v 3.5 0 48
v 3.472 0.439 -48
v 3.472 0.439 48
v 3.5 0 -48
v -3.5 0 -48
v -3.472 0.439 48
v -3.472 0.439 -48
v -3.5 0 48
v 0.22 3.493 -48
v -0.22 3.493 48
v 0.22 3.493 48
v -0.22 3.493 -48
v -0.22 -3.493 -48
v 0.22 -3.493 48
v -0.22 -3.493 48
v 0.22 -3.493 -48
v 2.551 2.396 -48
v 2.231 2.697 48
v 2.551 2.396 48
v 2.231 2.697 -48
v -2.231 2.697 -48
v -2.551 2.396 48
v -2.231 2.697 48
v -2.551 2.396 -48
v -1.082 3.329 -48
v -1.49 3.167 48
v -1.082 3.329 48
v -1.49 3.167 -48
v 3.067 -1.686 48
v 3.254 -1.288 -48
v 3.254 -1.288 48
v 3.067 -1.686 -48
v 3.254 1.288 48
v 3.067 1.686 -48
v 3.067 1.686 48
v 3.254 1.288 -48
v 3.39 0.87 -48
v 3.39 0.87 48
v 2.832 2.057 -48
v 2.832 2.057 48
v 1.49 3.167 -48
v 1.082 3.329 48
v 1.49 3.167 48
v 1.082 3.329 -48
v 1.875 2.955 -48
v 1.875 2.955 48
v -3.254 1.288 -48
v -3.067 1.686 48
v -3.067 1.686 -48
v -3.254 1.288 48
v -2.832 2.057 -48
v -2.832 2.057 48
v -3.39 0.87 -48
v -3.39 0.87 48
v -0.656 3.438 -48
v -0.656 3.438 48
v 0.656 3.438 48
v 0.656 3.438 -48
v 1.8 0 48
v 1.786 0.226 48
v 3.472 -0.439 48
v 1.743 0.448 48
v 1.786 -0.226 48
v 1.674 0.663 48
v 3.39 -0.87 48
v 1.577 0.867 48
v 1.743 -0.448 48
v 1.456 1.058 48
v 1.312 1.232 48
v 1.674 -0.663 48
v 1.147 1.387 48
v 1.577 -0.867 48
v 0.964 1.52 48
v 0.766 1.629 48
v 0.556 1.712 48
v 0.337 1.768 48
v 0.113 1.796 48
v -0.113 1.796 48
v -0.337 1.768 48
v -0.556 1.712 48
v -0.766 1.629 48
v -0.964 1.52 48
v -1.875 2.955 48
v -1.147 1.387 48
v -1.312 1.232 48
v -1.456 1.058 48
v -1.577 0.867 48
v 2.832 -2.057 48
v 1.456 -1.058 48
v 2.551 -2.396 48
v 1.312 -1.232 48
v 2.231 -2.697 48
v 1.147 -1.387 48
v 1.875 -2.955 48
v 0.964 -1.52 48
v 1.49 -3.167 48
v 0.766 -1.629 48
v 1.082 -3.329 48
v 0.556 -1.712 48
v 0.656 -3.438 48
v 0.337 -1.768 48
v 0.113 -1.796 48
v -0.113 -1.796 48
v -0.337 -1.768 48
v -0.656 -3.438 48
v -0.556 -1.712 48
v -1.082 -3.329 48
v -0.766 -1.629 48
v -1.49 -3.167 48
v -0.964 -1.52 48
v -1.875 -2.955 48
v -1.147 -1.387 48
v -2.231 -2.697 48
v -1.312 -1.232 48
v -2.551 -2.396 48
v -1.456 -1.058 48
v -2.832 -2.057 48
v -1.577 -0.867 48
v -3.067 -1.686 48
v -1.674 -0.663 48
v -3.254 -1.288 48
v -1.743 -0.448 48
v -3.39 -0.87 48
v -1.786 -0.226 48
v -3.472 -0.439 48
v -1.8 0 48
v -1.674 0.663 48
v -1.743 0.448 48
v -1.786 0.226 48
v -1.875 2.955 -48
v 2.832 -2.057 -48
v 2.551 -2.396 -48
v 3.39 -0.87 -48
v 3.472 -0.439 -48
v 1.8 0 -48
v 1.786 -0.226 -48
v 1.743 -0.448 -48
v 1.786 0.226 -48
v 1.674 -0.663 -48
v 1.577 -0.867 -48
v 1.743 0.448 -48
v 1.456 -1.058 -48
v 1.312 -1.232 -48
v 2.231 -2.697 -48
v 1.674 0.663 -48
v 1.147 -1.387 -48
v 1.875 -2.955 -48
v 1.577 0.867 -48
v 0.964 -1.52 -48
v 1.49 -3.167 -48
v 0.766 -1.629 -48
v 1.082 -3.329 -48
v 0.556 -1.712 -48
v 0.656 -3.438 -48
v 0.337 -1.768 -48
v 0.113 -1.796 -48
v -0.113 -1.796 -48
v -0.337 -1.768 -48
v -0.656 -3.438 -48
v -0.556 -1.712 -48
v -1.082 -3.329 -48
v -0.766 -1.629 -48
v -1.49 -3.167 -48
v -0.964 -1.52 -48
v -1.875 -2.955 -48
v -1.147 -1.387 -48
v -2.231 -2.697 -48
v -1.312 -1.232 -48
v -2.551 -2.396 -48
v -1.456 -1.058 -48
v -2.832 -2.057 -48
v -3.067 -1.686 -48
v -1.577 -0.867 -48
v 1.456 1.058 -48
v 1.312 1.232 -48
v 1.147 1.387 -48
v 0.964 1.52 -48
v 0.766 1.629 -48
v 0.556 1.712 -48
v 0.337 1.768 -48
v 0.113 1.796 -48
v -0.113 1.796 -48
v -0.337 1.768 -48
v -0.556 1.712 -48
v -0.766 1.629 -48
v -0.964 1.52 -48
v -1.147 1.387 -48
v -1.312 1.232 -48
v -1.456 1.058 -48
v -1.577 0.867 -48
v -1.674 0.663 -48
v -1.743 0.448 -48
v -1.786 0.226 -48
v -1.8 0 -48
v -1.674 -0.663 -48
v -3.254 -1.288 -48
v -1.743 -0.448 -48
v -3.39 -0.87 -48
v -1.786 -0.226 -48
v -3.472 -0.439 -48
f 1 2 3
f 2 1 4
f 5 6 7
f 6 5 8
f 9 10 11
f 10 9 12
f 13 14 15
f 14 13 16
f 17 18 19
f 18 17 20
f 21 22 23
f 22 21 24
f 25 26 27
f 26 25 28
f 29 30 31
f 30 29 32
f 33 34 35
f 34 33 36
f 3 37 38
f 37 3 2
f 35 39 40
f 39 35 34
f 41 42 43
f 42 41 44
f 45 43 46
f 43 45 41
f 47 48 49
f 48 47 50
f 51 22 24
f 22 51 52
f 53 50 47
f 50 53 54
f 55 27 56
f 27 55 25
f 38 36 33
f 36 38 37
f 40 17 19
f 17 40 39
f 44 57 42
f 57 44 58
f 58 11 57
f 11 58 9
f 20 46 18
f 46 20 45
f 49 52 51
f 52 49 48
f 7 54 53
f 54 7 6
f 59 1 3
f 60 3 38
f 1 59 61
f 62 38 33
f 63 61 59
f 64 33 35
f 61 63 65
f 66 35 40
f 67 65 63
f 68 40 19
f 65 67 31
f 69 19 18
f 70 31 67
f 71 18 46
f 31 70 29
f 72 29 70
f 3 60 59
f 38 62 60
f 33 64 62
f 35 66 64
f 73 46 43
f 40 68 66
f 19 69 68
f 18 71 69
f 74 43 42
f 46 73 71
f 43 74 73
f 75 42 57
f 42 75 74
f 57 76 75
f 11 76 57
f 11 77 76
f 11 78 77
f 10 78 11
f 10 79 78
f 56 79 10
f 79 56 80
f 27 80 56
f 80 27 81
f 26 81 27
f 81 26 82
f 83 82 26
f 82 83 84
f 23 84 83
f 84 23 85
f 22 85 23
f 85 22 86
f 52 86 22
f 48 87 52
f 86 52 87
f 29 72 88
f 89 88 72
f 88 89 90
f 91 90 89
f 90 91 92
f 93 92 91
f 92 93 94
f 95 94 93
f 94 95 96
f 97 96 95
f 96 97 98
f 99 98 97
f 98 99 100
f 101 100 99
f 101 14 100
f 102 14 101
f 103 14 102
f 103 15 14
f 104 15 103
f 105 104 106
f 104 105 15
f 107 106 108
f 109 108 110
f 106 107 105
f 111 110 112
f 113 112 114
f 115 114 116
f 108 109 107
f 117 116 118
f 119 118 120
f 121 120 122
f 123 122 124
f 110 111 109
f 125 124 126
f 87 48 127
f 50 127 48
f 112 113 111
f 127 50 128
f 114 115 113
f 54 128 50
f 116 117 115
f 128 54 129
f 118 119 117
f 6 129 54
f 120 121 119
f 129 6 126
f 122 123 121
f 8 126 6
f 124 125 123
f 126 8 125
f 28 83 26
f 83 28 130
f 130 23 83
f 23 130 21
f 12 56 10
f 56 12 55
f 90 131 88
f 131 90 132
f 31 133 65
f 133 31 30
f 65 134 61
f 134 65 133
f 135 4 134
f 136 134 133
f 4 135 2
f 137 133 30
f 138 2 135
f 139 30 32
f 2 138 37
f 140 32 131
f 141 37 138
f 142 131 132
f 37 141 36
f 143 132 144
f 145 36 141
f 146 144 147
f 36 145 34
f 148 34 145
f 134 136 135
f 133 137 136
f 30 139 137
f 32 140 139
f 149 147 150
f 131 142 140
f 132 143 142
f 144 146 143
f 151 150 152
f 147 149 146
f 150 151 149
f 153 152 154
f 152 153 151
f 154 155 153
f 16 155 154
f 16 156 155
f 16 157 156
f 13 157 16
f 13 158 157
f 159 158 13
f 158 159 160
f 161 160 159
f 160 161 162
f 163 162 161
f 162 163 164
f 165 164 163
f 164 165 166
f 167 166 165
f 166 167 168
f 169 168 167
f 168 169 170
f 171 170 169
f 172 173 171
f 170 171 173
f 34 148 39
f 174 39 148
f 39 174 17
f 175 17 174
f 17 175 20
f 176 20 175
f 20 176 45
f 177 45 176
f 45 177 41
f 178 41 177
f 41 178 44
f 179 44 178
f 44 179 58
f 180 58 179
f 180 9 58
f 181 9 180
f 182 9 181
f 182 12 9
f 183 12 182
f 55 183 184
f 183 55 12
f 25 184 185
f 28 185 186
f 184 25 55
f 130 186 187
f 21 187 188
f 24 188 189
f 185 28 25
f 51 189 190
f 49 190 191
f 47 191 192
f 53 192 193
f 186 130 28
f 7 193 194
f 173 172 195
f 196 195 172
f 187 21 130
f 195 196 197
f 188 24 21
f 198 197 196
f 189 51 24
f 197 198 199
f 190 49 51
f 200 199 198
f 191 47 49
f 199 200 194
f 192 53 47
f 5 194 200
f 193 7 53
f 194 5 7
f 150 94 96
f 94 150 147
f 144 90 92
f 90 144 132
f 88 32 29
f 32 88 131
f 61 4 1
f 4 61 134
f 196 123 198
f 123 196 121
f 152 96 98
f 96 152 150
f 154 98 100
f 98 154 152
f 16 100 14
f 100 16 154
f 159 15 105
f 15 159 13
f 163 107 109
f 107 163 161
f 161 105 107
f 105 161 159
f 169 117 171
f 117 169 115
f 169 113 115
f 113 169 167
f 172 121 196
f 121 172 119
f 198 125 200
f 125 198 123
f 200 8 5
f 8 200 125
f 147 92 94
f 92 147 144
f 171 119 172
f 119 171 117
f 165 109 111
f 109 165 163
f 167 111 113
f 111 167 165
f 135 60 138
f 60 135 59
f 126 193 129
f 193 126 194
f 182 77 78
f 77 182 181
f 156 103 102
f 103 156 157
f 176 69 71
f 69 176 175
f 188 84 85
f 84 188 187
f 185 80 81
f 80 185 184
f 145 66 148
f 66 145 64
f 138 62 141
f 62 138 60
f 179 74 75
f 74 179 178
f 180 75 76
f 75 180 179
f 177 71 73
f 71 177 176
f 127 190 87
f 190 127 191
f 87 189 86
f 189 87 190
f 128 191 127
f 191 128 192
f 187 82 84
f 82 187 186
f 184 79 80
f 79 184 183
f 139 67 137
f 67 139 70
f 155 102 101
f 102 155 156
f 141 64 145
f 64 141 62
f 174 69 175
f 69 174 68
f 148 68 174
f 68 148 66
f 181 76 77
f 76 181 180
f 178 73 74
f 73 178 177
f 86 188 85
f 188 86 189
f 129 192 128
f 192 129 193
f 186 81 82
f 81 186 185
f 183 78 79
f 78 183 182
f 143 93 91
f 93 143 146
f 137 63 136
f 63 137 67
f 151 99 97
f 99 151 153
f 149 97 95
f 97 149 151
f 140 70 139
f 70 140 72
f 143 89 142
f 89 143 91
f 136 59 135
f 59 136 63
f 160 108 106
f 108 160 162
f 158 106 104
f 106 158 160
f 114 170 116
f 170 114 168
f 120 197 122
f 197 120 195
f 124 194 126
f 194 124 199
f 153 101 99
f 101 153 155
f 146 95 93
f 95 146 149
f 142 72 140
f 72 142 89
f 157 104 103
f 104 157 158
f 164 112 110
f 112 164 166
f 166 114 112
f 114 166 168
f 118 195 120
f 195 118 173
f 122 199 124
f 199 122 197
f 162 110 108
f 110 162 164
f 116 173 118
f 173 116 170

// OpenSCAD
$fn = 50;


difference() {
	union() {
		translate(v = [0, 0, -48.0000000000]) {
			cylinder(h = 96, r = 3.5000000000);
		}
	}
	union() {
		translate(v = [0, 0, -100.0000000000]) {
			cylinder(h = 200, r = 1.8000000000);
		}
	}
}
